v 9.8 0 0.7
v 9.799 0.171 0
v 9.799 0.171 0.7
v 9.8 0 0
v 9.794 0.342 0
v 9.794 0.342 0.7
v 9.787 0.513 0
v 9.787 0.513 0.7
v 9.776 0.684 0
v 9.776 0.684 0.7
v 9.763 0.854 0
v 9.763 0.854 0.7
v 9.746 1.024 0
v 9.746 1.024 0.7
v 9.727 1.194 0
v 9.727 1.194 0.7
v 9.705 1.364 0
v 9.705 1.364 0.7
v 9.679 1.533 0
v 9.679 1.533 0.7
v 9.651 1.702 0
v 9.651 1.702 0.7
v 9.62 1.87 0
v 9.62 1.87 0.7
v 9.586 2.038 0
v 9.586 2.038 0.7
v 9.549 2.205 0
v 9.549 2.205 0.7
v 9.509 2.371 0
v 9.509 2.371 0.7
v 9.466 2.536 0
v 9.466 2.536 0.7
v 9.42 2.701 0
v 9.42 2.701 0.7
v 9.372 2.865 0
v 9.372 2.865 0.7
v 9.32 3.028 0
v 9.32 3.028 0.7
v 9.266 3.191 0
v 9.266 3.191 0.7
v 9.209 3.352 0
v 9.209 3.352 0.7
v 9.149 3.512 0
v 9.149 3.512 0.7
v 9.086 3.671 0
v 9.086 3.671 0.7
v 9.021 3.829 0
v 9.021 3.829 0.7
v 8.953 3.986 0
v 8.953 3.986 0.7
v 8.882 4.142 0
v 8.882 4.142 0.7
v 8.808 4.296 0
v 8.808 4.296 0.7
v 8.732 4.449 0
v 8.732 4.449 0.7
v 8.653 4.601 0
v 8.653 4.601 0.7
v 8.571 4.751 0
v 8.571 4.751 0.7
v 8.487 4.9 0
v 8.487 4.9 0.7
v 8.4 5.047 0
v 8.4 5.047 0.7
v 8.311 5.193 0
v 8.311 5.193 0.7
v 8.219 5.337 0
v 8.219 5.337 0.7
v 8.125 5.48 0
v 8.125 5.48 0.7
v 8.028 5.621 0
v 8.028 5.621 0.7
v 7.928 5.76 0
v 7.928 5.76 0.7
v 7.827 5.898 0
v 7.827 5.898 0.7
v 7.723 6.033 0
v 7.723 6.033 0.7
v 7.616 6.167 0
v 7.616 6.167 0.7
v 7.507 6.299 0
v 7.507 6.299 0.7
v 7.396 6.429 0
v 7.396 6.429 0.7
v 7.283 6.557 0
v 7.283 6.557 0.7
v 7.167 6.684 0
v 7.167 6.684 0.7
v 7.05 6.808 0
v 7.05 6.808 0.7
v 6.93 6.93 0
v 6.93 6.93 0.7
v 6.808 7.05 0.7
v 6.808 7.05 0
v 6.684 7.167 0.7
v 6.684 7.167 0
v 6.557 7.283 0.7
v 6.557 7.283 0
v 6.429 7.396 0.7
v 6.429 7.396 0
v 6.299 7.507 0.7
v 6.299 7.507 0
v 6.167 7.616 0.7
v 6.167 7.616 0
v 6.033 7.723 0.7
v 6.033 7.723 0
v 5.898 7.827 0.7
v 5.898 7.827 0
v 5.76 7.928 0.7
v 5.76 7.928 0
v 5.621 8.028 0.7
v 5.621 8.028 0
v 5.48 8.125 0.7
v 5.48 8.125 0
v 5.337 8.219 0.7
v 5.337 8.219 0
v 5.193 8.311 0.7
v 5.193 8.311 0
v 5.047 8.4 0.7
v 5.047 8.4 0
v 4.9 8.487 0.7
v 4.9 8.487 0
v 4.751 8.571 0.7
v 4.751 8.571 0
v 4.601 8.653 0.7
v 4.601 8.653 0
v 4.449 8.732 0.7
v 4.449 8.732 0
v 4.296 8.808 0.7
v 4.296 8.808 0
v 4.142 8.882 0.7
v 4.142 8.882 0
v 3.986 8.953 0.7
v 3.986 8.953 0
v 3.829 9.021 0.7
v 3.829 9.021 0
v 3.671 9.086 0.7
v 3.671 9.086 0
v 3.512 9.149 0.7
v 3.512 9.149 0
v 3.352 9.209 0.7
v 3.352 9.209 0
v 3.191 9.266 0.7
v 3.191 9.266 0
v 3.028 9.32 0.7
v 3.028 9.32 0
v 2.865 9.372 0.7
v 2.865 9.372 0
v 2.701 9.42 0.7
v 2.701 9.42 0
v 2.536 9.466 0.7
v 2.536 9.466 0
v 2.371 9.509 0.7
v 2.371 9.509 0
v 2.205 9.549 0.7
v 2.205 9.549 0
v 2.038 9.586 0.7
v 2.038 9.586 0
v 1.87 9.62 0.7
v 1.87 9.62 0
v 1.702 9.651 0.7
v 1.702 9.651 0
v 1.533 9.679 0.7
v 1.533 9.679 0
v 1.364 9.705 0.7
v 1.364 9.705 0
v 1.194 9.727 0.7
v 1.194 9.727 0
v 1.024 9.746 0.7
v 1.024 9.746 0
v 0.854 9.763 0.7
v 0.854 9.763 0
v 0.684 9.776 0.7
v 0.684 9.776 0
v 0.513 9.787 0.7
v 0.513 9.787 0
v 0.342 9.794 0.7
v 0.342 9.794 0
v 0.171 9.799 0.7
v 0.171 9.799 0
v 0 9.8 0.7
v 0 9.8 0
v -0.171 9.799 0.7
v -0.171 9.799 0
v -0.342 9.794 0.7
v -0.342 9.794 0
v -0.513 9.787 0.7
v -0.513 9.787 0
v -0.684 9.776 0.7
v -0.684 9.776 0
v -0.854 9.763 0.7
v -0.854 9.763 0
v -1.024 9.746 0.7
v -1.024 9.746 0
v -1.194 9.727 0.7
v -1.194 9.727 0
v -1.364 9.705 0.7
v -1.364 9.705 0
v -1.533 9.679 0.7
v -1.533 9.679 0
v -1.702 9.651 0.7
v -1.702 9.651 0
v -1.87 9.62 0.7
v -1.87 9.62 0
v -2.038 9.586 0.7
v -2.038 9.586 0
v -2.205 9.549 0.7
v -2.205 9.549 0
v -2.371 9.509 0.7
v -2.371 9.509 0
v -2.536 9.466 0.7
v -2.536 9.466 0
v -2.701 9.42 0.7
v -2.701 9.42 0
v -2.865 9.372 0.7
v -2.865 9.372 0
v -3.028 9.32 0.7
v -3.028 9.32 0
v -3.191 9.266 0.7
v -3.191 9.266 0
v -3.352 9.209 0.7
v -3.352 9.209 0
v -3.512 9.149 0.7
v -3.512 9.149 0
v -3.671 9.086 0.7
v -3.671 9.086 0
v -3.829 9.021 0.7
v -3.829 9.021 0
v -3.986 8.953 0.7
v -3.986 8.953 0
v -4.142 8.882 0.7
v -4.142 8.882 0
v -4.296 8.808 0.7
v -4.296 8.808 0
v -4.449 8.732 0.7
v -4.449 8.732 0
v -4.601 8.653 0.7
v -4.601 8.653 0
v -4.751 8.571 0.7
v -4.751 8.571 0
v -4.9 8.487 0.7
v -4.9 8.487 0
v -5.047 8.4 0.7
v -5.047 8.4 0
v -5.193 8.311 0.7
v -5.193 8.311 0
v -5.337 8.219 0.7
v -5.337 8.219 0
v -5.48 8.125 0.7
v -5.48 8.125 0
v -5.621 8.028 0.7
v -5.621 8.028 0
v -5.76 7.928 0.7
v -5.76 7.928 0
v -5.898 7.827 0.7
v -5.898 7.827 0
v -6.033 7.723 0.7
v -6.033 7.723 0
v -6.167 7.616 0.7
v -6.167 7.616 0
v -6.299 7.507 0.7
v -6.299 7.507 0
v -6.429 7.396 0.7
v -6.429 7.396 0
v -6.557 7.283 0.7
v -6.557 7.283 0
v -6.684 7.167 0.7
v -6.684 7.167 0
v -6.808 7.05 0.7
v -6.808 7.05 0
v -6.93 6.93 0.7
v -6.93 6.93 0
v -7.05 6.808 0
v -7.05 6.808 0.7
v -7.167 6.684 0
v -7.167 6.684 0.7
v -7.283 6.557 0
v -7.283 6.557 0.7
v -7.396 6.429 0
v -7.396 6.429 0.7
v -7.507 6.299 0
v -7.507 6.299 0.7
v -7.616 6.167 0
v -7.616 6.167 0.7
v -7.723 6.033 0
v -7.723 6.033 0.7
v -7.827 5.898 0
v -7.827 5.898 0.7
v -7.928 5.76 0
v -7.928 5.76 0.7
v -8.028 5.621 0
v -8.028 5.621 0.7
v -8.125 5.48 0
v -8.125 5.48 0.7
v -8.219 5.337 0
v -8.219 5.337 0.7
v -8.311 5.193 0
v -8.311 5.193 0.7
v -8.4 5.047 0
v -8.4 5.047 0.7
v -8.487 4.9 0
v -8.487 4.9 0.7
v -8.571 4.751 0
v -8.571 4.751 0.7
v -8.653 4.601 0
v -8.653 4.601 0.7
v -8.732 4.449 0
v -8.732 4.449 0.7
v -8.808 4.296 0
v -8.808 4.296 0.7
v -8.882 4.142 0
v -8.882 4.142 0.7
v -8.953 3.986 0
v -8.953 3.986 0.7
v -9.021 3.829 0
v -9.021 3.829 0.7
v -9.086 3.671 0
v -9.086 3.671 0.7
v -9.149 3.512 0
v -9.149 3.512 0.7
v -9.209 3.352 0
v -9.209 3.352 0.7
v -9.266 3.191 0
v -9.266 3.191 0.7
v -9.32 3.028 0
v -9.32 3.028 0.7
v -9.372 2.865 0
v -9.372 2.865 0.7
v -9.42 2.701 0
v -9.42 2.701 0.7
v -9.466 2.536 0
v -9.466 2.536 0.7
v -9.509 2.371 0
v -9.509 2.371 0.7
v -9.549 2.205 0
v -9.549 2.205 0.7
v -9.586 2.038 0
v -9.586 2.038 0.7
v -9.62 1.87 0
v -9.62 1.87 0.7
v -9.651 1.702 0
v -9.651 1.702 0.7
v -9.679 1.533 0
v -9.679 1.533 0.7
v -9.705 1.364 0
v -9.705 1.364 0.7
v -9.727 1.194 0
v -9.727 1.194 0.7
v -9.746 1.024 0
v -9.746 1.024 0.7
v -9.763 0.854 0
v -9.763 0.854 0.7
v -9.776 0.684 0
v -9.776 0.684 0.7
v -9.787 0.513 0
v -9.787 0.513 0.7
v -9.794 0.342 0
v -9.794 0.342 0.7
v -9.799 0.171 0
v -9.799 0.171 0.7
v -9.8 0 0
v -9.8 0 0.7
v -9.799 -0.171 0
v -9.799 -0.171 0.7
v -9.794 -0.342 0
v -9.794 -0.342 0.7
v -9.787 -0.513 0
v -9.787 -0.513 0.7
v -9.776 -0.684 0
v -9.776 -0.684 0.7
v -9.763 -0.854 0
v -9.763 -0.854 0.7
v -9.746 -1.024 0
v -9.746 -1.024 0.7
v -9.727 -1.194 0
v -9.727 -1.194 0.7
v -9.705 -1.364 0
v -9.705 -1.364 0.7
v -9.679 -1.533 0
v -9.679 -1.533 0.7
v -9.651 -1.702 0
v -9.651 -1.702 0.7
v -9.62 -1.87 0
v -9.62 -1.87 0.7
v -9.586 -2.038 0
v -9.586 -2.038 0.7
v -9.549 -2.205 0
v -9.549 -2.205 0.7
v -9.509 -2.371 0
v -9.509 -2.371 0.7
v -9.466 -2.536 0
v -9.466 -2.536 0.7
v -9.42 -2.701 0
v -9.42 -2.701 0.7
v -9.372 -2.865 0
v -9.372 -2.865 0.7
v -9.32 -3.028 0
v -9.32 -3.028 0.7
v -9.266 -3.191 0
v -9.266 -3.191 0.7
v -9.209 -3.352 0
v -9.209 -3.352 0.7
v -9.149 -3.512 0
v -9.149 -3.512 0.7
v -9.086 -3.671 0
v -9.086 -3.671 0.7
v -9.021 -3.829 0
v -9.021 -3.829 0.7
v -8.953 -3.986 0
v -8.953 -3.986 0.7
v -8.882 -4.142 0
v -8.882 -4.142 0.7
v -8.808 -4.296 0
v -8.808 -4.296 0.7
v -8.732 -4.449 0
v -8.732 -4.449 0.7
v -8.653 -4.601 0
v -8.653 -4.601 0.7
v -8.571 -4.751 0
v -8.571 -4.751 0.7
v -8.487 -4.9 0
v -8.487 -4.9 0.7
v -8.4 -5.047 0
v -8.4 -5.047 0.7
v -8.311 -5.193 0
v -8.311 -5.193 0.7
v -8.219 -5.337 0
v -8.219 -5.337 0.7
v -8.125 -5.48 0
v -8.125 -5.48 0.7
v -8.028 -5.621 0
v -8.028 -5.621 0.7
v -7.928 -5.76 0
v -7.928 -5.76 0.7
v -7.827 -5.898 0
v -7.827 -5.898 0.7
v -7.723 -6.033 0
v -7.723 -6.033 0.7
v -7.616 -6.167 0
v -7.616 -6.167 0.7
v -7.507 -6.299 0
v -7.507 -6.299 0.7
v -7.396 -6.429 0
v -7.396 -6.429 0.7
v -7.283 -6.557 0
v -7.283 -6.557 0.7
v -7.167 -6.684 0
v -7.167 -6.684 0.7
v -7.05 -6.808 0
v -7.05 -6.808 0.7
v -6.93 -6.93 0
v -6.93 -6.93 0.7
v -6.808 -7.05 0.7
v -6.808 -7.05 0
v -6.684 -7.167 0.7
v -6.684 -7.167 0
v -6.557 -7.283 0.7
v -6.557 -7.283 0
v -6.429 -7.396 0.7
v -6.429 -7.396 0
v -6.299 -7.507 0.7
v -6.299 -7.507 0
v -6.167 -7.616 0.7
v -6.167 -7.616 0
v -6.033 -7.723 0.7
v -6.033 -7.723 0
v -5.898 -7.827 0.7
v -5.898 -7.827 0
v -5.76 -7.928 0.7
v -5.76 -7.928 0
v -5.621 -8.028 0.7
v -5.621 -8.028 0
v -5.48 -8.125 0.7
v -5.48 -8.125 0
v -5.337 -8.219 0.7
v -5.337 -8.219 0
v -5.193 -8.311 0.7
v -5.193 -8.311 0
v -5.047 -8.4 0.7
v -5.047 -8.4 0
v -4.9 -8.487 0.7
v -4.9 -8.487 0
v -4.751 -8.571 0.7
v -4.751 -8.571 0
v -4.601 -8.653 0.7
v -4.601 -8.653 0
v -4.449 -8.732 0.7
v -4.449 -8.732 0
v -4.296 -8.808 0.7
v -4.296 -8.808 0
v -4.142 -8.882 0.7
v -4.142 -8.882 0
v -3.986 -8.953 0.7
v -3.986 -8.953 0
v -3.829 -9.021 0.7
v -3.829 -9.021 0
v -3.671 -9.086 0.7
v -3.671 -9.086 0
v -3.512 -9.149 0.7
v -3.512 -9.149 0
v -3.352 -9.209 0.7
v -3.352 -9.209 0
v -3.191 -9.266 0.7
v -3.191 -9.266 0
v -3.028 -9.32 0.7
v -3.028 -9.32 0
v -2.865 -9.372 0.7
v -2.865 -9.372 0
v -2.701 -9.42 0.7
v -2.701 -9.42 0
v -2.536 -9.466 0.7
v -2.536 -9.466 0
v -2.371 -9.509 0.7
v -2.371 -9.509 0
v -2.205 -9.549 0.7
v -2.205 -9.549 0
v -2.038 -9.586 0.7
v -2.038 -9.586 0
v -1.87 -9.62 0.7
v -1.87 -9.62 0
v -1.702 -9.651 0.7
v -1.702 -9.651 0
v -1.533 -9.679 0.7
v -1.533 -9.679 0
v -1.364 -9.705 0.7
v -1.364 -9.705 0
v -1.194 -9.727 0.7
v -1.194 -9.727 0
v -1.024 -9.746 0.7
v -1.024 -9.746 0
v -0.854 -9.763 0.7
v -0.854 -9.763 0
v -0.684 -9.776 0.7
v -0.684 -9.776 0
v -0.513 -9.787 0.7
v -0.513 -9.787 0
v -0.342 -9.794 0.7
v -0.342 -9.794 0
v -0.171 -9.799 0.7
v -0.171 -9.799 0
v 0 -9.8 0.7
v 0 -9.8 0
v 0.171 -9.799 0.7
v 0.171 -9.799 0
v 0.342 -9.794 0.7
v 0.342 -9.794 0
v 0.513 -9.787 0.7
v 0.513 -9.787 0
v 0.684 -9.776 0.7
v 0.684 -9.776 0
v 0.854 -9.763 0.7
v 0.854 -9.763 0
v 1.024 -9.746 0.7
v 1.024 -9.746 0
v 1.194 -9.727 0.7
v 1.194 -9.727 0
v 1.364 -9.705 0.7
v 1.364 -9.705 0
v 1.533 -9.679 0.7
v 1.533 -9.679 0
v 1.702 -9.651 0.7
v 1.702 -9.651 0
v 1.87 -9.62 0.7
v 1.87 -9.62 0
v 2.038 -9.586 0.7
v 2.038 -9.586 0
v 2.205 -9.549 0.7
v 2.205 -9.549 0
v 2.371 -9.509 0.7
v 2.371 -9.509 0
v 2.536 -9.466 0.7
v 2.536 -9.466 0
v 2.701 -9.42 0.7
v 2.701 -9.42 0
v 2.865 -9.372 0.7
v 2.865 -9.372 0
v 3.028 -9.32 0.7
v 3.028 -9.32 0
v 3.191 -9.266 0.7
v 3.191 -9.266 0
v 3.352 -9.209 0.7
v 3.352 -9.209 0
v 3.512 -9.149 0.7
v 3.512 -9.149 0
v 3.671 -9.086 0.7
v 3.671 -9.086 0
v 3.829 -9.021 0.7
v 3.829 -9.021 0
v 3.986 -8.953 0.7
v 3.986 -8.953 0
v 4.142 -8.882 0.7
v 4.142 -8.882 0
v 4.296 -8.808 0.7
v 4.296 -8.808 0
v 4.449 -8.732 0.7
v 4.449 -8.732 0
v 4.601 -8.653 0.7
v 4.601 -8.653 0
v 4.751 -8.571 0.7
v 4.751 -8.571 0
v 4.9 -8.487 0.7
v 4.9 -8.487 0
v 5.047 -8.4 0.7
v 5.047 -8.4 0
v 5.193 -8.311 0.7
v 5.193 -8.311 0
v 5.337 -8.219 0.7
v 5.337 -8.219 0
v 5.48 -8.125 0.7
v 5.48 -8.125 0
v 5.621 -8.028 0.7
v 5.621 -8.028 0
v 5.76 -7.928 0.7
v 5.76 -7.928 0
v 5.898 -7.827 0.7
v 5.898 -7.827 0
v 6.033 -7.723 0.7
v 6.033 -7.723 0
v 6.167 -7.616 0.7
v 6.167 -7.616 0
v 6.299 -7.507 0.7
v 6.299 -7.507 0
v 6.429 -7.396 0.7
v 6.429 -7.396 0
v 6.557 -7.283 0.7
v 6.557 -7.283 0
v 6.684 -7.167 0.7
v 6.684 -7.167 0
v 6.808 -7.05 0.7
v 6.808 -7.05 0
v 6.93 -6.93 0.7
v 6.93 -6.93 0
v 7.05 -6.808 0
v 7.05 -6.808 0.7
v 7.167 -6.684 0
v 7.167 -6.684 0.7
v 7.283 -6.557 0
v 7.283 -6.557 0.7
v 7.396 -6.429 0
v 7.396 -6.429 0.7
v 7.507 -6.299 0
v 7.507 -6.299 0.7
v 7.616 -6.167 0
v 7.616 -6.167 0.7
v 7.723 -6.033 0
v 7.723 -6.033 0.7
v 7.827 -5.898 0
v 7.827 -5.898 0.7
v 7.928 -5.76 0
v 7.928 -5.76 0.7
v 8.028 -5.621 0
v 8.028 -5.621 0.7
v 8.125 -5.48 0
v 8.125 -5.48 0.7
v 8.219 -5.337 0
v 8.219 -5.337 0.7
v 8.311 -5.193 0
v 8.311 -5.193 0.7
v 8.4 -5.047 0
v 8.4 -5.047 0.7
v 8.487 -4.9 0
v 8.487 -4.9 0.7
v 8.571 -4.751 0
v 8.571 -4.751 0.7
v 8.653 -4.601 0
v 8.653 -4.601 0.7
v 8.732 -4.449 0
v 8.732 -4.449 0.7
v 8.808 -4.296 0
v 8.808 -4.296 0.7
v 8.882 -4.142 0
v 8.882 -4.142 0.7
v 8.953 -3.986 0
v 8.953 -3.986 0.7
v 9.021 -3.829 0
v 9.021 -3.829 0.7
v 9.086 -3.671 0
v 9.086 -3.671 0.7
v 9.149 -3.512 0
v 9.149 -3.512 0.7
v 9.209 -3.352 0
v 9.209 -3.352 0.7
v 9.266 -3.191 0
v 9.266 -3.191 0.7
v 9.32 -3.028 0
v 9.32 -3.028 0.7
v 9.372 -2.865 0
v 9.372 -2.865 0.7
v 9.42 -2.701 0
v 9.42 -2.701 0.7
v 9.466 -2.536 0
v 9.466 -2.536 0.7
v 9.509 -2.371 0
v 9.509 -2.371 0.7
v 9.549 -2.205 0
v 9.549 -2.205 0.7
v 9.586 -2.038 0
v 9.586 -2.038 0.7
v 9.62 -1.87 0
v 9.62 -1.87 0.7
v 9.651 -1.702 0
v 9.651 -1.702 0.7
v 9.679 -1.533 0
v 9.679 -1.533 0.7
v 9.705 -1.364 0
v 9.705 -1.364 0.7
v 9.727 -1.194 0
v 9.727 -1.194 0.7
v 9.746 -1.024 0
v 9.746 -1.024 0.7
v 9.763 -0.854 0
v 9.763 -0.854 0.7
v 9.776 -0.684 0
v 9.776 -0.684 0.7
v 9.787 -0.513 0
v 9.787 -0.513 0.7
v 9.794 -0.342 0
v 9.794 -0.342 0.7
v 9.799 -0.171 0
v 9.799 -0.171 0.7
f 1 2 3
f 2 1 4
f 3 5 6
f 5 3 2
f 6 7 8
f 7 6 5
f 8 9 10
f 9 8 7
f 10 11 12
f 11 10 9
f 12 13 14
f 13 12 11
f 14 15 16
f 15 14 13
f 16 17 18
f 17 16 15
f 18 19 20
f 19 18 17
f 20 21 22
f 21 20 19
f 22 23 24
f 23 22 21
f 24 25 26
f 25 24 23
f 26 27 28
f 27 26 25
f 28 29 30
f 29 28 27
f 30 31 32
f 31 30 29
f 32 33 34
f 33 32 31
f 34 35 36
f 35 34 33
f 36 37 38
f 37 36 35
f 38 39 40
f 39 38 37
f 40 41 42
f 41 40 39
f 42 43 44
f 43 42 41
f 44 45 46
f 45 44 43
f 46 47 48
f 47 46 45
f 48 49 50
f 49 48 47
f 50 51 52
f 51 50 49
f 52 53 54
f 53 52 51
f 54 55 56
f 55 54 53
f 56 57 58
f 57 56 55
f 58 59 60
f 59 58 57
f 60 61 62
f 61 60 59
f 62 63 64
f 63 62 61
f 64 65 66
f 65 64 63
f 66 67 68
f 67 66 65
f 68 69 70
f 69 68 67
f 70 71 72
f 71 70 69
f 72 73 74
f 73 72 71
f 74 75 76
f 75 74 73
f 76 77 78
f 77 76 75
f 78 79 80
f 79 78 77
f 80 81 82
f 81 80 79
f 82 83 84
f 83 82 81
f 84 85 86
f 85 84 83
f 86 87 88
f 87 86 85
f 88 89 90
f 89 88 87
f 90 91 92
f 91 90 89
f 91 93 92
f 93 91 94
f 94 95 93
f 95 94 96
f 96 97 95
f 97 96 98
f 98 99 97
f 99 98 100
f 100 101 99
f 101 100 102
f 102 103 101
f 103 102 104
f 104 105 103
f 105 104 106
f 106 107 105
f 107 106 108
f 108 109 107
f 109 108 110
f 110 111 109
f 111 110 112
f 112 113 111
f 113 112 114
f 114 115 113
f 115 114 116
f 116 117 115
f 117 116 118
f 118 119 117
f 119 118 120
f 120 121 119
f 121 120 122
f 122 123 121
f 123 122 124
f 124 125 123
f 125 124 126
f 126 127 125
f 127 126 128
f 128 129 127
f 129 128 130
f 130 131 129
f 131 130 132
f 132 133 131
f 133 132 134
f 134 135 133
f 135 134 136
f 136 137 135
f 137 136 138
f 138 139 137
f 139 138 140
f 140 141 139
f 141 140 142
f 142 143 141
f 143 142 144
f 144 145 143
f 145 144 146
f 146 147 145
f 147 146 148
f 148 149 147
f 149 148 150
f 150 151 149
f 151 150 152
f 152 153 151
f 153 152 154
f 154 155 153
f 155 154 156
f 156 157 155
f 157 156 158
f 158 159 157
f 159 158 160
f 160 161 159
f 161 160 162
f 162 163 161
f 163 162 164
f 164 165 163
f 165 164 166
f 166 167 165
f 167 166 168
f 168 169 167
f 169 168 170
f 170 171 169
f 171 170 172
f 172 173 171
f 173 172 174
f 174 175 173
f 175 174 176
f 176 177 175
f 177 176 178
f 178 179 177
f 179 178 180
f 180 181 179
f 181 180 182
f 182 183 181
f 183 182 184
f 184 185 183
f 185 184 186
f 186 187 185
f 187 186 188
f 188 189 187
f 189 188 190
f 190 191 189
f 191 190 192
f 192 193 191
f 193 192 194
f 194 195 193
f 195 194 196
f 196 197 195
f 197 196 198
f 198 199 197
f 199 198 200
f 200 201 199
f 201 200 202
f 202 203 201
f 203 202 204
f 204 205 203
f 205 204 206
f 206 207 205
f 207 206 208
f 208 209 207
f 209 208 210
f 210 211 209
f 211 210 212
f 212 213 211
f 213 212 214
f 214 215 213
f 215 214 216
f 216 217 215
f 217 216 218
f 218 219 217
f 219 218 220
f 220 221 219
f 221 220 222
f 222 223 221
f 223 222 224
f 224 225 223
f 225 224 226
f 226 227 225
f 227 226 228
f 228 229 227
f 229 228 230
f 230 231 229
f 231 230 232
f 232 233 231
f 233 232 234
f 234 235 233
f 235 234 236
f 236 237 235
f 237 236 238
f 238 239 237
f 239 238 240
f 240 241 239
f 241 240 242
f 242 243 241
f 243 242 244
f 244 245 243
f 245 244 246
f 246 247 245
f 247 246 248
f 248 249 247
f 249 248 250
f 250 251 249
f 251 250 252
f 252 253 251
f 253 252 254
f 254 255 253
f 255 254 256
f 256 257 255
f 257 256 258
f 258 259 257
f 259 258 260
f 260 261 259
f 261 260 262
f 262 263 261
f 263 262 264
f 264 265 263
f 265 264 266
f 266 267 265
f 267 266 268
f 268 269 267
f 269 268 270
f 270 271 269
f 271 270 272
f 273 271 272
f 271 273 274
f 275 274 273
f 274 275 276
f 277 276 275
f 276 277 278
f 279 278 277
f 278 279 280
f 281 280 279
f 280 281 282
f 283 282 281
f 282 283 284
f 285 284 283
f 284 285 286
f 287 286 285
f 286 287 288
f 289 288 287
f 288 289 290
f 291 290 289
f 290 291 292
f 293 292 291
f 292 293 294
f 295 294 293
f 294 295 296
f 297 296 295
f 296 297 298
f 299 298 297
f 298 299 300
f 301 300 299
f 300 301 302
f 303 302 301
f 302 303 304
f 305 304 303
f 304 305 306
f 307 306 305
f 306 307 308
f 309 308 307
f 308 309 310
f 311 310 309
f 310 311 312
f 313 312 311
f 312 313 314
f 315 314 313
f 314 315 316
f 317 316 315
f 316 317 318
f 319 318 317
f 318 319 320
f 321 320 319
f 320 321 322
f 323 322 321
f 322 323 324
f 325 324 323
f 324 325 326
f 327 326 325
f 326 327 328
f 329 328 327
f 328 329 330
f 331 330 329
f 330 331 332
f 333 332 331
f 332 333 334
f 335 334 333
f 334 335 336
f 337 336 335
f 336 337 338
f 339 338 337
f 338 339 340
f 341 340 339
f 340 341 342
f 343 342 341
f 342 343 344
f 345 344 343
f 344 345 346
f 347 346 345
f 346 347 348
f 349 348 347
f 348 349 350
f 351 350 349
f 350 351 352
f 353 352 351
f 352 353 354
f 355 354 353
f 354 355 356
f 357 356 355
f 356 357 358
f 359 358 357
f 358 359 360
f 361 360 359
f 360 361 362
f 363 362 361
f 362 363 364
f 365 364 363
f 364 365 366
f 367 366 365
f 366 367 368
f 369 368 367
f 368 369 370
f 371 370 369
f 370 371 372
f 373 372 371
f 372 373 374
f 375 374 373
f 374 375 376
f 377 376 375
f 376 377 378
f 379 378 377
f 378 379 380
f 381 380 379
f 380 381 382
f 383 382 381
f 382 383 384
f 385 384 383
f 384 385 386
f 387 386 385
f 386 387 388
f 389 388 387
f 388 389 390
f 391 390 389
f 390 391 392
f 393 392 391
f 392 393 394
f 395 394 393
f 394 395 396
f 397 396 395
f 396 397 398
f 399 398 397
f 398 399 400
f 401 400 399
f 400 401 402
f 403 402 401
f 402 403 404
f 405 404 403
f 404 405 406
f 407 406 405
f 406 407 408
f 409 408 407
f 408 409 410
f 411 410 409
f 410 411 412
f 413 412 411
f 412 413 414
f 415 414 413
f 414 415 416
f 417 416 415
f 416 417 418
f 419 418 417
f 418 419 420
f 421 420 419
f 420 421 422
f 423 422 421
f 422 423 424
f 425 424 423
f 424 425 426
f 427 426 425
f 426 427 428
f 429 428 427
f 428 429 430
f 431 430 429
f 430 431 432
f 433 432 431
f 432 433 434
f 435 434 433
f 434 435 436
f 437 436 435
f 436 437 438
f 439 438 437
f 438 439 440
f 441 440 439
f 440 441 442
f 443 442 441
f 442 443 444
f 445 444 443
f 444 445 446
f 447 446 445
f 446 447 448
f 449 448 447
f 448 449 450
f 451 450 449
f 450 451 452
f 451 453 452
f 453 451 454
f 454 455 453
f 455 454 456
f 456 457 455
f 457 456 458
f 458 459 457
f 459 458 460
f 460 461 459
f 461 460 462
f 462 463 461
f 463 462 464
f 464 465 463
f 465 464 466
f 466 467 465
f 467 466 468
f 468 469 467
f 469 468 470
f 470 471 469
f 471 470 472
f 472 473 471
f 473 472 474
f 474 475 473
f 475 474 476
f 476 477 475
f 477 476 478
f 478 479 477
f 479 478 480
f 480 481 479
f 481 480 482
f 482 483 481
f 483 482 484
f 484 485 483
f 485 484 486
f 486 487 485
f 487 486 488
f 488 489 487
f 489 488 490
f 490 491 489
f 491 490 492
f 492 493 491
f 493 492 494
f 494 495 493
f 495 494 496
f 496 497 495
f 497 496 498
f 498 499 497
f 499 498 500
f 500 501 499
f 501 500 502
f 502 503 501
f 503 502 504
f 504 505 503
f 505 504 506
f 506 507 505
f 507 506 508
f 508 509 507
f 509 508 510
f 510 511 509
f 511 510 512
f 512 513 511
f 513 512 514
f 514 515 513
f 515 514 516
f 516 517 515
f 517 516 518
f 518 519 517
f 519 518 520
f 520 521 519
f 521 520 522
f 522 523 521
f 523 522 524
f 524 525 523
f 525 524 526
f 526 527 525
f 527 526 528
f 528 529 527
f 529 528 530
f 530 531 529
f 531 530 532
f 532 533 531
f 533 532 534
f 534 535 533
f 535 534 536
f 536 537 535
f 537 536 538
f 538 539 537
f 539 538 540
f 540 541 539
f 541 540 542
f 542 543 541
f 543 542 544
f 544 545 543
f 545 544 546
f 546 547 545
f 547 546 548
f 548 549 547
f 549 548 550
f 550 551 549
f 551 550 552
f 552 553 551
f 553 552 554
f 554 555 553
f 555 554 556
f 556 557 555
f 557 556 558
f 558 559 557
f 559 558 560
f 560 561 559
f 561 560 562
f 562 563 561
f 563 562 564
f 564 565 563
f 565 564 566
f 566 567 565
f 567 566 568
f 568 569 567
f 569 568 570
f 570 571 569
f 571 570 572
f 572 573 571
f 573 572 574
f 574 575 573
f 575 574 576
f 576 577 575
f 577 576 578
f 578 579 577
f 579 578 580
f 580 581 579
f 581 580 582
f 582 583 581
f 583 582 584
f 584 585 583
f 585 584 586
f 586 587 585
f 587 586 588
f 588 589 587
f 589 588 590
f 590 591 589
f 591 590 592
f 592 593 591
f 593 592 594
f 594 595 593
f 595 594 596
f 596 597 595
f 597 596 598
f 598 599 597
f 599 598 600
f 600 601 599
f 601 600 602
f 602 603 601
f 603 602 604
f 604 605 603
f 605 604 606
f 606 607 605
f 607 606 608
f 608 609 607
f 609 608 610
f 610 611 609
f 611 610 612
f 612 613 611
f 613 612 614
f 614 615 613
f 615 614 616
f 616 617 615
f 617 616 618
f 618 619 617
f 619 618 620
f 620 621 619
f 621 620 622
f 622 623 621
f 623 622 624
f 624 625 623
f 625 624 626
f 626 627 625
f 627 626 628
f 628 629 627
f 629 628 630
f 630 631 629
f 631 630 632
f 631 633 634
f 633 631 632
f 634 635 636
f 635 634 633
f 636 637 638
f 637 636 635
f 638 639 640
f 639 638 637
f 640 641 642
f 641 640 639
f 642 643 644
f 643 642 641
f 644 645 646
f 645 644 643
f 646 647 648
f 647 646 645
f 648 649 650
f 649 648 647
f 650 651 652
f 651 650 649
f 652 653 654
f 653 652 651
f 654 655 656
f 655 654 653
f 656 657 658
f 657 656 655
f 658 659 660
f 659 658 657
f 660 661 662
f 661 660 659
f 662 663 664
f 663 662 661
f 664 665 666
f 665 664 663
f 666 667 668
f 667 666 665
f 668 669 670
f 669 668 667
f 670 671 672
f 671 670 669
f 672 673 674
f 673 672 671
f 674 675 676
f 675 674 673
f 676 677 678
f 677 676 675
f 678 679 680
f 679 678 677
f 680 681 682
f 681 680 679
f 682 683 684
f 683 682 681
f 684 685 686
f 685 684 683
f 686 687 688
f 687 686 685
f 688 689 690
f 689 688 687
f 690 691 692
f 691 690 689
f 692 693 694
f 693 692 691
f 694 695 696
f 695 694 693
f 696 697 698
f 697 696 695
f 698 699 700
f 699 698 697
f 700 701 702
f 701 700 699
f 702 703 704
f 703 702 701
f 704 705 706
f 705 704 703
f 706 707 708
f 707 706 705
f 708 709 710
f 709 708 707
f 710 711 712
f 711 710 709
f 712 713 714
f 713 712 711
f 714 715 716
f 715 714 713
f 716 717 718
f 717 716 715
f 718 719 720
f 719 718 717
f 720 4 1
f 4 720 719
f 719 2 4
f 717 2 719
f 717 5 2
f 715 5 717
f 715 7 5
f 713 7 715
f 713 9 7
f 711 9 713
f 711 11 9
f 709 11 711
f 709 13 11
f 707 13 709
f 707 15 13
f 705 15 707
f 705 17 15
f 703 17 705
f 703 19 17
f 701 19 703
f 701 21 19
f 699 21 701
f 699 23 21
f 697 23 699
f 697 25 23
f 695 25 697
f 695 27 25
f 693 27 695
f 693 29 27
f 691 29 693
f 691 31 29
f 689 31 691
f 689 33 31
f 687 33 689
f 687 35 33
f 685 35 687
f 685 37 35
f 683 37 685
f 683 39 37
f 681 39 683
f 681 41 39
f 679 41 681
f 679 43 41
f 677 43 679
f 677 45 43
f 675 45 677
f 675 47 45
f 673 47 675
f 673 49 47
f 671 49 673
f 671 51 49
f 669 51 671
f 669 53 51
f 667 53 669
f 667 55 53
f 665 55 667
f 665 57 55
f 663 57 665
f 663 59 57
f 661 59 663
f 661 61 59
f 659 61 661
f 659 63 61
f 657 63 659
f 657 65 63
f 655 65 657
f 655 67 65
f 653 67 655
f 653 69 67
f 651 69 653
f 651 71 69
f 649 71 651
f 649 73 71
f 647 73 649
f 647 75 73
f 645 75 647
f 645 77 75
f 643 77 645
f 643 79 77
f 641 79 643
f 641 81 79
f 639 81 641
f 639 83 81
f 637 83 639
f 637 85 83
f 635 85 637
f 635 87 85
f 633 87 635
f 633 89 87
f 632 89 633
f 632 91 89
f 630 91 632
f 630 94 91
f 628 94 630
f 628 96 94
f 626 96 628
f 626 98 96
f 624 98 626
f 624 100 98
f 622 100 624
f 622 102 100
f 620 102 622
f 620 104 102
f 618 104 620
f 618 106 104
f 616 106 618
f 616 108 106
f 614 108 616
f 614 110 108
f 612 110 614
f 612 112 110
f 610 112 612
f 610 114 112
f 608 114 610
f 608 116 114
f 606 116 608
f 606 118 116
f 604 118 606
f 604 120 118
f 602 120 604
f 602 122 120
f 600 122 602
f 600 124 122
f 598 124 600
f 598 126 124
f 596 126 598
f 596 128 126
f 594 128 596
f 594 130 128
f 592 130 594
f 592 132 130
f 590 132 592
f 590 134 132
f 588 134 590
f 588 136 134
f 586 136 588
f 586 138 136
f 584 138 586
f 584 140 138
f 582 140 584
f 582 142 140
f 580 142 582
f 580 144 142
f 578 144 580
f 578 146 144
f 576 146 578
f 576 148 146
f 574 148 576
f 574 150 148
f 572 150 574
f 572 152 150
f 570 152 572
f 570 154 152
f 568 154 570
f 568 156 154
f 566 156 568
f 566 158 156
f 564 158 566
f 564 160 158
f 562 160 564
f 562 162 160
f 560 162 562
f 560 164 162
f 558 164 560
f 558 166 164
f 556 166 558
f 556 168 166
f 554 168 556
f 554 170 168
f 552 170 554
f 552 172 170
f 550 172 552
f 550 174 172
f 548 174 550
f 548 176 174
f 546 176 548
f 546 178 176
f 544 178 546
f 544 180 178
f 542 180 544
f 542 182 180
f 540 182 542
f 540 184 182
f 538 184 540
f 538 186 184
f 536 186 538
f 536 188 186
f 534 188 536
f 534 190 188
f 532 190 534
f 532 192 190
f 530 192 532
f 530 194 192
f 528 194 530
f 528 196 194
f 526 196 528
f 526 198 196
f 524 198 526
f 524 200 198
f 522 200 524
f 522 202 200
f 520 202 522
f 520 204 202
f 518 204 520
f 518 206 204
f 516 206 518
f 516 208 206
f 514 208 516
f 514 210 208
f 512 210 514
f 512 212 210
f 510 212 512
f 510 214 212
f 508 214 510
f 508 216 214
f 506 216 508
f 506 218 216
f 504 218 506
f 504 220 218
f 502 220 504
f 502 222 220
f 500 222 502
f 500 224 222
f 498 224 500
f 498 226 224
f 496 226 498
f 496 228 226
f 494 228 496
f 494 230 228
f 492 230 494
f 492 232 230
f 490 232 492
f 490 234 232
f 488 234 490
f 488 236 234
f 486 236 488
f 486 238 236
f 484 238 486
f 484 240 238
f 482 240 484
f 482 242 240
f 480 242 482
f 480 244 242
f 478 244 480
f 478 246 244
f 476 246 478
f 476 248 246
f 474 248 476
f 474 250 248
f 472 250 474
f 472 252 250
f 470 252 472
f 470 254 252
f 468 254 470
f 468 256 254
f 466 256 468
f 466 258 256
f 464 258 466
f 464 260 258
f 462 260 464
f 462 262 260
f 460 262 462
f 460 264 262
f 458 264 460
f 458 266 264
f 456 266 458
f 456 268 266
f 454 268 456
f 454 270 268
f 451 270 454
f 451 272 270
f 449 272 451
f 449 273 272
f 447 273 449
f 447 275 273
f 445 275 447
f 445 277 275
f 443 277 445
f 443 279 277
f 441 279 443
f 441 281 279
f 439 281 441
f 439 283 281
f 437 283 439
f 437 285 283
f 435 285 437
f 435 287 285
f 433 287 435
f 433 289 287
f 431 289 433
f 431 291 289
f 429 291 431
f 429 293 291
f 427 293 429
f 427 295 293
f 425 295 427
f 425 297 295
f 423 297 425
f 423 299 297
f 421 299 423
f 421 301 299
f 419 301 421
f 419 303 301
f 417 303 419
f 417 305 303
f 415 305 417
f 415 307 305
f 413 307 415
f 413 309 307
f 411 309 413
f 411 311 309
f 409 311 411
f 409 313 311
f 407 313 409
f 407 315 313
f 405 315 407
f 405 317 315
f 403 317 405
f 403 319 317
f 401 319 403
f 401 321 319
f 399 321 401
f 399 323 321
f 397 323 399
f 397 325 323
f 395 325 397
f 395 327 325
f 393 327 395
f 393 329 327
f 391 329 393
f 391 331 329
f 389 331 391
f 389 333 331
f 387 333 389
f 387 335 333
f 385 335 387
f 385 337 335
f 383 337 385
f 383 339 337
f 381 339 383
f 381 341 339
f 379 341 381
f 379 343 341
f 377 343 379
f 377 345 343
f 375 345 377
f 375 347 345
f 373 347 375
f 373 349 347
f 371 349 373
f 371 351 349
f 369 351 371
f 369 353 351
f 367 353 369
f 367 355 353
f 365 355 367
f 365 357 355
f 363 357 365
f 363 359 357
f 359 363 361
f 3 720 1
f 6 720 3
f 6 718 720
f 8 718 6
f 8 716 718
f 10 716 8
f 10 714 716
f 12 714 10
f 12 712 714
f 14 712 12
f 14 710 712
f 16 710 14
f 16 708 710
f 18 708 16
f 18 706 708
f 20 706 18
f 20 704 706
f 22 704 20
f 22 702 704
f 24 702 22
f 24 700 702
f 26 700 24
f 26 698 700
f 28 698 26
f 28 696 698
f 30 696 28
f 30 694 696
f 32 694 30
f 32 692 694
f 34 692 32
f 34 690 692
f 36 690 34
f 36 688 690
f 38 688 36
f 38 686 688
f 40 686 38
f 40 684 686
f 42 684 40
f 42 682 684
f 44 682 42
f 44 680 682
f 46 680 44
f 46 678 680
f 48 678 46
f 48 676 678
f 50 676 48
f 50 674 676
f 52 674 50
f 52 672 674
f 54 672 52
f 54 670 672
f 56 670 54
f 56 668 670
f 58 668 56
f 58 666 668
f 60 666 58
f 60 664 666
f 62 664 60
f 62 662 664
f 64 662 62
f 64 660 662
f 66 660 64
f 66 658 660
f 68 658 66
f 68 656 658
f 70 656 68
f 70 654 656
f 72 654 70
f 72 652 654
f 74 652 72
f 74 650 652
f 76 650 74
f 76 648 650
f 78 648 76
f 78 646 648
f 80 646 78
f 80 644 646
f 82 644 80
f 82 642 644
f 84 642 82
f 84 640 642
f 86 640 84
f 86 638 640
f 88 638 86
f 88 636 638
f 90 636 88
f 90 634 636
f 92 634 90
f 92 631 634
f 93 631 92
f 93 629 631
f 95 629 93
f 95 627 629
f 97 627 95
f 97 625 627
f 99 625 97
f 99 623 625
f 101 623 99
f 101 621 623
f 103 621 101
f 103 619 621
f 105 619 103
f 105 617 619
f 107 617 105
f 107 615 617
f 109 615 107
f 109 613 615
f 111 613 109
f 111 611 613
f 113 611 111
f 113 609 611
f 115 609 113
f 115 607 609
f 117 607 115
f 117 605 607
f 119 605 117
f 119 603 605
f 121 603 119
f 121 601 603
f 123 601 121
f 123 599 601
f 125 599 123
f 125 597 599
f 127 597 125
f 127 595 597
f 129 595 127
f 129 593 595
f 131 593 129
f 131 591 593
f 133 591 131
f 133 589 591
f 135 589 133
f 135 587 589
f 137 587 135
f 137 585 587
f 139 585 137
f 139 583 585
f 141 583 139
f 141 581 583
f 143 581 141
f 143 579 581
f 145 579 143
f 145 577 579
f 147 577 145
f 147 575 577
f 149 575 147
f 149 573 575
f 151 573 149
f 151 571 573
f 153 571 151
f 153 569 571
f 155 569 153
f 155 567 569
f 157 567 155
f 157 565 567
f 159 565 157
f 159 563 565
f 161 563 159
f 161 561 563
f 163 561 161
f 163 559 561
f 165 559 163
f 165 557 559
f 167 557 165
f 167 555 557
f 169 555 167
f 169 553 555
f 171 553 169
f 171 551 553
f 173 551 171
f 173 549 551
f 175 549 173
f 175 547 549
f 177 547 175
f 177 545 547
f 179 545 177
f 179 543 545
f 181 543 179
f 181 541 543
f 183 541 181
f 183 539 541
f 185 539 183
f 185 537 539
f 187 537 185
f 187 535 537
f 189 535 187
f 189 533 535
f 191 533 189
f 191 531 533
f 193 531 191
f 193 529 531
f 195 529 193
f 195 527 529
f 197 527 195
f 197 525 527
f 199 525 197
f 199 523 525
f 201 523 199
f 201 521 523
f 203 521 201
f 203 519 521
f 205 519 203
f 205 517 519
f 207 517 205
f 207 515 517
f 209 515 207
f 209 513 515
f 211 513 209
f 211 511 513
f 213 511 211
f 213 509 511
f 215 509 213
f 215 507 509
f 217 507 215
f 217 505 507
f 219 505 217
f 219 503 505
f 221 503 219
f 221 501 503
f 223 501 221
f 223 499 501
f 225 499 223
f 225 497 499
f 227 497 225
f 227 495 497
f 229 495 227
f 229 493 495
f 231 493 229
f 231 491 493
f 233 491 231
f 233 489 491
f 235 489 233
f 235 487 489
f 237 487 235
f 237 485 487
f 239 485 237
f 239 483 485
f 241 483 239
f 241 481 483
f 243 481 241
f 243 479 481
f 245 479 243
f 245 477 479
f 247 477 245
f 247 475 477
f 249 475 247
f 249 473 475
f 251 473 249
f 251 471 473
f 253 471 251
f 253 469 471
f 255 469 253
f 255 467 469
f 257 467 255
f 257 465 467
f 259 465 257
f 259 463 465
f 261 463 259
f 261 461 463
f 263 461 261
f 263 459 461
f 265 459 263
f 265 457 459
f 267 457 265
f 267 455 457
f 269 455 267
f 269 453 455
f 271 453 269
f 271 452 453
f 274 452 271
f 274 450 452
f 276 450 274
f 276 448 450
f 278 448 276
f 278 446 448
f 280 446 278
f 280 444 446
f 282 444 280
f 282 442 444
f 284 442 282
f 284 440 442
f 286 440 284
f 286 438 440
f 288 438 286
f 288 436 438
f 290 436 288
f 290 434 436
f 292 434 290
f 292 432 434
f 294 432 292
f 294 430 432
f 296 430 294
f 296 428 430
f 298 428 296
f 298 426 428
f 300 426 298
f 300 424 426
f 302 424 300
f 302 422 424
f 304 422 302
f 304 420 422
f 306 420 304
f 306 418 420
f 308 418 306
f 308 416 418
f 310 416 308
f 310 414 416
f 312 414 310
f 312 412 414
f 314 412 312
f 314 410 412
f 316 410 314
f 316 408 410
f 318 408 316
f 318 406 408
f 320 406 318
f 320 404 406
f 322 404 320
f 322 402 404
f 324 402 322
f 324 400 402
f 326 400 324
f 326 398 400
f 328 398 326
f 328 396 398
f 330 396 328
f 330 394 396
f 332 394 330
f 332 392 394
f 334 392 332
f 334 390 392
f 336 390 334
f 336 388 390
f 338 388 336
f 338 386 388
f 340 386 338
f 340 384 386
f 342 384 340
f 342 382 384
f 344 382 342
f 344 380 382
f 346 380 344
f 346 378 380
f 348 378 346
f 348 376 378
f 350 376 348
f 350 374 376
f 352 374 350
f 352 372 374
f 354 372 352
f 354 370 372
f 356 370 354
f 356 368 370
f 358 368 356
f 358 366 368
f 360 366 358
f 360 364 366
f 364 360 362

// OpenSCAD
nozzle_diameter = 0.4;

diameter = 20 - nozzle_diameter;
height = 3.2 - 2.5;

$fn = 360;
cylinder(d = diameter, h = height);
